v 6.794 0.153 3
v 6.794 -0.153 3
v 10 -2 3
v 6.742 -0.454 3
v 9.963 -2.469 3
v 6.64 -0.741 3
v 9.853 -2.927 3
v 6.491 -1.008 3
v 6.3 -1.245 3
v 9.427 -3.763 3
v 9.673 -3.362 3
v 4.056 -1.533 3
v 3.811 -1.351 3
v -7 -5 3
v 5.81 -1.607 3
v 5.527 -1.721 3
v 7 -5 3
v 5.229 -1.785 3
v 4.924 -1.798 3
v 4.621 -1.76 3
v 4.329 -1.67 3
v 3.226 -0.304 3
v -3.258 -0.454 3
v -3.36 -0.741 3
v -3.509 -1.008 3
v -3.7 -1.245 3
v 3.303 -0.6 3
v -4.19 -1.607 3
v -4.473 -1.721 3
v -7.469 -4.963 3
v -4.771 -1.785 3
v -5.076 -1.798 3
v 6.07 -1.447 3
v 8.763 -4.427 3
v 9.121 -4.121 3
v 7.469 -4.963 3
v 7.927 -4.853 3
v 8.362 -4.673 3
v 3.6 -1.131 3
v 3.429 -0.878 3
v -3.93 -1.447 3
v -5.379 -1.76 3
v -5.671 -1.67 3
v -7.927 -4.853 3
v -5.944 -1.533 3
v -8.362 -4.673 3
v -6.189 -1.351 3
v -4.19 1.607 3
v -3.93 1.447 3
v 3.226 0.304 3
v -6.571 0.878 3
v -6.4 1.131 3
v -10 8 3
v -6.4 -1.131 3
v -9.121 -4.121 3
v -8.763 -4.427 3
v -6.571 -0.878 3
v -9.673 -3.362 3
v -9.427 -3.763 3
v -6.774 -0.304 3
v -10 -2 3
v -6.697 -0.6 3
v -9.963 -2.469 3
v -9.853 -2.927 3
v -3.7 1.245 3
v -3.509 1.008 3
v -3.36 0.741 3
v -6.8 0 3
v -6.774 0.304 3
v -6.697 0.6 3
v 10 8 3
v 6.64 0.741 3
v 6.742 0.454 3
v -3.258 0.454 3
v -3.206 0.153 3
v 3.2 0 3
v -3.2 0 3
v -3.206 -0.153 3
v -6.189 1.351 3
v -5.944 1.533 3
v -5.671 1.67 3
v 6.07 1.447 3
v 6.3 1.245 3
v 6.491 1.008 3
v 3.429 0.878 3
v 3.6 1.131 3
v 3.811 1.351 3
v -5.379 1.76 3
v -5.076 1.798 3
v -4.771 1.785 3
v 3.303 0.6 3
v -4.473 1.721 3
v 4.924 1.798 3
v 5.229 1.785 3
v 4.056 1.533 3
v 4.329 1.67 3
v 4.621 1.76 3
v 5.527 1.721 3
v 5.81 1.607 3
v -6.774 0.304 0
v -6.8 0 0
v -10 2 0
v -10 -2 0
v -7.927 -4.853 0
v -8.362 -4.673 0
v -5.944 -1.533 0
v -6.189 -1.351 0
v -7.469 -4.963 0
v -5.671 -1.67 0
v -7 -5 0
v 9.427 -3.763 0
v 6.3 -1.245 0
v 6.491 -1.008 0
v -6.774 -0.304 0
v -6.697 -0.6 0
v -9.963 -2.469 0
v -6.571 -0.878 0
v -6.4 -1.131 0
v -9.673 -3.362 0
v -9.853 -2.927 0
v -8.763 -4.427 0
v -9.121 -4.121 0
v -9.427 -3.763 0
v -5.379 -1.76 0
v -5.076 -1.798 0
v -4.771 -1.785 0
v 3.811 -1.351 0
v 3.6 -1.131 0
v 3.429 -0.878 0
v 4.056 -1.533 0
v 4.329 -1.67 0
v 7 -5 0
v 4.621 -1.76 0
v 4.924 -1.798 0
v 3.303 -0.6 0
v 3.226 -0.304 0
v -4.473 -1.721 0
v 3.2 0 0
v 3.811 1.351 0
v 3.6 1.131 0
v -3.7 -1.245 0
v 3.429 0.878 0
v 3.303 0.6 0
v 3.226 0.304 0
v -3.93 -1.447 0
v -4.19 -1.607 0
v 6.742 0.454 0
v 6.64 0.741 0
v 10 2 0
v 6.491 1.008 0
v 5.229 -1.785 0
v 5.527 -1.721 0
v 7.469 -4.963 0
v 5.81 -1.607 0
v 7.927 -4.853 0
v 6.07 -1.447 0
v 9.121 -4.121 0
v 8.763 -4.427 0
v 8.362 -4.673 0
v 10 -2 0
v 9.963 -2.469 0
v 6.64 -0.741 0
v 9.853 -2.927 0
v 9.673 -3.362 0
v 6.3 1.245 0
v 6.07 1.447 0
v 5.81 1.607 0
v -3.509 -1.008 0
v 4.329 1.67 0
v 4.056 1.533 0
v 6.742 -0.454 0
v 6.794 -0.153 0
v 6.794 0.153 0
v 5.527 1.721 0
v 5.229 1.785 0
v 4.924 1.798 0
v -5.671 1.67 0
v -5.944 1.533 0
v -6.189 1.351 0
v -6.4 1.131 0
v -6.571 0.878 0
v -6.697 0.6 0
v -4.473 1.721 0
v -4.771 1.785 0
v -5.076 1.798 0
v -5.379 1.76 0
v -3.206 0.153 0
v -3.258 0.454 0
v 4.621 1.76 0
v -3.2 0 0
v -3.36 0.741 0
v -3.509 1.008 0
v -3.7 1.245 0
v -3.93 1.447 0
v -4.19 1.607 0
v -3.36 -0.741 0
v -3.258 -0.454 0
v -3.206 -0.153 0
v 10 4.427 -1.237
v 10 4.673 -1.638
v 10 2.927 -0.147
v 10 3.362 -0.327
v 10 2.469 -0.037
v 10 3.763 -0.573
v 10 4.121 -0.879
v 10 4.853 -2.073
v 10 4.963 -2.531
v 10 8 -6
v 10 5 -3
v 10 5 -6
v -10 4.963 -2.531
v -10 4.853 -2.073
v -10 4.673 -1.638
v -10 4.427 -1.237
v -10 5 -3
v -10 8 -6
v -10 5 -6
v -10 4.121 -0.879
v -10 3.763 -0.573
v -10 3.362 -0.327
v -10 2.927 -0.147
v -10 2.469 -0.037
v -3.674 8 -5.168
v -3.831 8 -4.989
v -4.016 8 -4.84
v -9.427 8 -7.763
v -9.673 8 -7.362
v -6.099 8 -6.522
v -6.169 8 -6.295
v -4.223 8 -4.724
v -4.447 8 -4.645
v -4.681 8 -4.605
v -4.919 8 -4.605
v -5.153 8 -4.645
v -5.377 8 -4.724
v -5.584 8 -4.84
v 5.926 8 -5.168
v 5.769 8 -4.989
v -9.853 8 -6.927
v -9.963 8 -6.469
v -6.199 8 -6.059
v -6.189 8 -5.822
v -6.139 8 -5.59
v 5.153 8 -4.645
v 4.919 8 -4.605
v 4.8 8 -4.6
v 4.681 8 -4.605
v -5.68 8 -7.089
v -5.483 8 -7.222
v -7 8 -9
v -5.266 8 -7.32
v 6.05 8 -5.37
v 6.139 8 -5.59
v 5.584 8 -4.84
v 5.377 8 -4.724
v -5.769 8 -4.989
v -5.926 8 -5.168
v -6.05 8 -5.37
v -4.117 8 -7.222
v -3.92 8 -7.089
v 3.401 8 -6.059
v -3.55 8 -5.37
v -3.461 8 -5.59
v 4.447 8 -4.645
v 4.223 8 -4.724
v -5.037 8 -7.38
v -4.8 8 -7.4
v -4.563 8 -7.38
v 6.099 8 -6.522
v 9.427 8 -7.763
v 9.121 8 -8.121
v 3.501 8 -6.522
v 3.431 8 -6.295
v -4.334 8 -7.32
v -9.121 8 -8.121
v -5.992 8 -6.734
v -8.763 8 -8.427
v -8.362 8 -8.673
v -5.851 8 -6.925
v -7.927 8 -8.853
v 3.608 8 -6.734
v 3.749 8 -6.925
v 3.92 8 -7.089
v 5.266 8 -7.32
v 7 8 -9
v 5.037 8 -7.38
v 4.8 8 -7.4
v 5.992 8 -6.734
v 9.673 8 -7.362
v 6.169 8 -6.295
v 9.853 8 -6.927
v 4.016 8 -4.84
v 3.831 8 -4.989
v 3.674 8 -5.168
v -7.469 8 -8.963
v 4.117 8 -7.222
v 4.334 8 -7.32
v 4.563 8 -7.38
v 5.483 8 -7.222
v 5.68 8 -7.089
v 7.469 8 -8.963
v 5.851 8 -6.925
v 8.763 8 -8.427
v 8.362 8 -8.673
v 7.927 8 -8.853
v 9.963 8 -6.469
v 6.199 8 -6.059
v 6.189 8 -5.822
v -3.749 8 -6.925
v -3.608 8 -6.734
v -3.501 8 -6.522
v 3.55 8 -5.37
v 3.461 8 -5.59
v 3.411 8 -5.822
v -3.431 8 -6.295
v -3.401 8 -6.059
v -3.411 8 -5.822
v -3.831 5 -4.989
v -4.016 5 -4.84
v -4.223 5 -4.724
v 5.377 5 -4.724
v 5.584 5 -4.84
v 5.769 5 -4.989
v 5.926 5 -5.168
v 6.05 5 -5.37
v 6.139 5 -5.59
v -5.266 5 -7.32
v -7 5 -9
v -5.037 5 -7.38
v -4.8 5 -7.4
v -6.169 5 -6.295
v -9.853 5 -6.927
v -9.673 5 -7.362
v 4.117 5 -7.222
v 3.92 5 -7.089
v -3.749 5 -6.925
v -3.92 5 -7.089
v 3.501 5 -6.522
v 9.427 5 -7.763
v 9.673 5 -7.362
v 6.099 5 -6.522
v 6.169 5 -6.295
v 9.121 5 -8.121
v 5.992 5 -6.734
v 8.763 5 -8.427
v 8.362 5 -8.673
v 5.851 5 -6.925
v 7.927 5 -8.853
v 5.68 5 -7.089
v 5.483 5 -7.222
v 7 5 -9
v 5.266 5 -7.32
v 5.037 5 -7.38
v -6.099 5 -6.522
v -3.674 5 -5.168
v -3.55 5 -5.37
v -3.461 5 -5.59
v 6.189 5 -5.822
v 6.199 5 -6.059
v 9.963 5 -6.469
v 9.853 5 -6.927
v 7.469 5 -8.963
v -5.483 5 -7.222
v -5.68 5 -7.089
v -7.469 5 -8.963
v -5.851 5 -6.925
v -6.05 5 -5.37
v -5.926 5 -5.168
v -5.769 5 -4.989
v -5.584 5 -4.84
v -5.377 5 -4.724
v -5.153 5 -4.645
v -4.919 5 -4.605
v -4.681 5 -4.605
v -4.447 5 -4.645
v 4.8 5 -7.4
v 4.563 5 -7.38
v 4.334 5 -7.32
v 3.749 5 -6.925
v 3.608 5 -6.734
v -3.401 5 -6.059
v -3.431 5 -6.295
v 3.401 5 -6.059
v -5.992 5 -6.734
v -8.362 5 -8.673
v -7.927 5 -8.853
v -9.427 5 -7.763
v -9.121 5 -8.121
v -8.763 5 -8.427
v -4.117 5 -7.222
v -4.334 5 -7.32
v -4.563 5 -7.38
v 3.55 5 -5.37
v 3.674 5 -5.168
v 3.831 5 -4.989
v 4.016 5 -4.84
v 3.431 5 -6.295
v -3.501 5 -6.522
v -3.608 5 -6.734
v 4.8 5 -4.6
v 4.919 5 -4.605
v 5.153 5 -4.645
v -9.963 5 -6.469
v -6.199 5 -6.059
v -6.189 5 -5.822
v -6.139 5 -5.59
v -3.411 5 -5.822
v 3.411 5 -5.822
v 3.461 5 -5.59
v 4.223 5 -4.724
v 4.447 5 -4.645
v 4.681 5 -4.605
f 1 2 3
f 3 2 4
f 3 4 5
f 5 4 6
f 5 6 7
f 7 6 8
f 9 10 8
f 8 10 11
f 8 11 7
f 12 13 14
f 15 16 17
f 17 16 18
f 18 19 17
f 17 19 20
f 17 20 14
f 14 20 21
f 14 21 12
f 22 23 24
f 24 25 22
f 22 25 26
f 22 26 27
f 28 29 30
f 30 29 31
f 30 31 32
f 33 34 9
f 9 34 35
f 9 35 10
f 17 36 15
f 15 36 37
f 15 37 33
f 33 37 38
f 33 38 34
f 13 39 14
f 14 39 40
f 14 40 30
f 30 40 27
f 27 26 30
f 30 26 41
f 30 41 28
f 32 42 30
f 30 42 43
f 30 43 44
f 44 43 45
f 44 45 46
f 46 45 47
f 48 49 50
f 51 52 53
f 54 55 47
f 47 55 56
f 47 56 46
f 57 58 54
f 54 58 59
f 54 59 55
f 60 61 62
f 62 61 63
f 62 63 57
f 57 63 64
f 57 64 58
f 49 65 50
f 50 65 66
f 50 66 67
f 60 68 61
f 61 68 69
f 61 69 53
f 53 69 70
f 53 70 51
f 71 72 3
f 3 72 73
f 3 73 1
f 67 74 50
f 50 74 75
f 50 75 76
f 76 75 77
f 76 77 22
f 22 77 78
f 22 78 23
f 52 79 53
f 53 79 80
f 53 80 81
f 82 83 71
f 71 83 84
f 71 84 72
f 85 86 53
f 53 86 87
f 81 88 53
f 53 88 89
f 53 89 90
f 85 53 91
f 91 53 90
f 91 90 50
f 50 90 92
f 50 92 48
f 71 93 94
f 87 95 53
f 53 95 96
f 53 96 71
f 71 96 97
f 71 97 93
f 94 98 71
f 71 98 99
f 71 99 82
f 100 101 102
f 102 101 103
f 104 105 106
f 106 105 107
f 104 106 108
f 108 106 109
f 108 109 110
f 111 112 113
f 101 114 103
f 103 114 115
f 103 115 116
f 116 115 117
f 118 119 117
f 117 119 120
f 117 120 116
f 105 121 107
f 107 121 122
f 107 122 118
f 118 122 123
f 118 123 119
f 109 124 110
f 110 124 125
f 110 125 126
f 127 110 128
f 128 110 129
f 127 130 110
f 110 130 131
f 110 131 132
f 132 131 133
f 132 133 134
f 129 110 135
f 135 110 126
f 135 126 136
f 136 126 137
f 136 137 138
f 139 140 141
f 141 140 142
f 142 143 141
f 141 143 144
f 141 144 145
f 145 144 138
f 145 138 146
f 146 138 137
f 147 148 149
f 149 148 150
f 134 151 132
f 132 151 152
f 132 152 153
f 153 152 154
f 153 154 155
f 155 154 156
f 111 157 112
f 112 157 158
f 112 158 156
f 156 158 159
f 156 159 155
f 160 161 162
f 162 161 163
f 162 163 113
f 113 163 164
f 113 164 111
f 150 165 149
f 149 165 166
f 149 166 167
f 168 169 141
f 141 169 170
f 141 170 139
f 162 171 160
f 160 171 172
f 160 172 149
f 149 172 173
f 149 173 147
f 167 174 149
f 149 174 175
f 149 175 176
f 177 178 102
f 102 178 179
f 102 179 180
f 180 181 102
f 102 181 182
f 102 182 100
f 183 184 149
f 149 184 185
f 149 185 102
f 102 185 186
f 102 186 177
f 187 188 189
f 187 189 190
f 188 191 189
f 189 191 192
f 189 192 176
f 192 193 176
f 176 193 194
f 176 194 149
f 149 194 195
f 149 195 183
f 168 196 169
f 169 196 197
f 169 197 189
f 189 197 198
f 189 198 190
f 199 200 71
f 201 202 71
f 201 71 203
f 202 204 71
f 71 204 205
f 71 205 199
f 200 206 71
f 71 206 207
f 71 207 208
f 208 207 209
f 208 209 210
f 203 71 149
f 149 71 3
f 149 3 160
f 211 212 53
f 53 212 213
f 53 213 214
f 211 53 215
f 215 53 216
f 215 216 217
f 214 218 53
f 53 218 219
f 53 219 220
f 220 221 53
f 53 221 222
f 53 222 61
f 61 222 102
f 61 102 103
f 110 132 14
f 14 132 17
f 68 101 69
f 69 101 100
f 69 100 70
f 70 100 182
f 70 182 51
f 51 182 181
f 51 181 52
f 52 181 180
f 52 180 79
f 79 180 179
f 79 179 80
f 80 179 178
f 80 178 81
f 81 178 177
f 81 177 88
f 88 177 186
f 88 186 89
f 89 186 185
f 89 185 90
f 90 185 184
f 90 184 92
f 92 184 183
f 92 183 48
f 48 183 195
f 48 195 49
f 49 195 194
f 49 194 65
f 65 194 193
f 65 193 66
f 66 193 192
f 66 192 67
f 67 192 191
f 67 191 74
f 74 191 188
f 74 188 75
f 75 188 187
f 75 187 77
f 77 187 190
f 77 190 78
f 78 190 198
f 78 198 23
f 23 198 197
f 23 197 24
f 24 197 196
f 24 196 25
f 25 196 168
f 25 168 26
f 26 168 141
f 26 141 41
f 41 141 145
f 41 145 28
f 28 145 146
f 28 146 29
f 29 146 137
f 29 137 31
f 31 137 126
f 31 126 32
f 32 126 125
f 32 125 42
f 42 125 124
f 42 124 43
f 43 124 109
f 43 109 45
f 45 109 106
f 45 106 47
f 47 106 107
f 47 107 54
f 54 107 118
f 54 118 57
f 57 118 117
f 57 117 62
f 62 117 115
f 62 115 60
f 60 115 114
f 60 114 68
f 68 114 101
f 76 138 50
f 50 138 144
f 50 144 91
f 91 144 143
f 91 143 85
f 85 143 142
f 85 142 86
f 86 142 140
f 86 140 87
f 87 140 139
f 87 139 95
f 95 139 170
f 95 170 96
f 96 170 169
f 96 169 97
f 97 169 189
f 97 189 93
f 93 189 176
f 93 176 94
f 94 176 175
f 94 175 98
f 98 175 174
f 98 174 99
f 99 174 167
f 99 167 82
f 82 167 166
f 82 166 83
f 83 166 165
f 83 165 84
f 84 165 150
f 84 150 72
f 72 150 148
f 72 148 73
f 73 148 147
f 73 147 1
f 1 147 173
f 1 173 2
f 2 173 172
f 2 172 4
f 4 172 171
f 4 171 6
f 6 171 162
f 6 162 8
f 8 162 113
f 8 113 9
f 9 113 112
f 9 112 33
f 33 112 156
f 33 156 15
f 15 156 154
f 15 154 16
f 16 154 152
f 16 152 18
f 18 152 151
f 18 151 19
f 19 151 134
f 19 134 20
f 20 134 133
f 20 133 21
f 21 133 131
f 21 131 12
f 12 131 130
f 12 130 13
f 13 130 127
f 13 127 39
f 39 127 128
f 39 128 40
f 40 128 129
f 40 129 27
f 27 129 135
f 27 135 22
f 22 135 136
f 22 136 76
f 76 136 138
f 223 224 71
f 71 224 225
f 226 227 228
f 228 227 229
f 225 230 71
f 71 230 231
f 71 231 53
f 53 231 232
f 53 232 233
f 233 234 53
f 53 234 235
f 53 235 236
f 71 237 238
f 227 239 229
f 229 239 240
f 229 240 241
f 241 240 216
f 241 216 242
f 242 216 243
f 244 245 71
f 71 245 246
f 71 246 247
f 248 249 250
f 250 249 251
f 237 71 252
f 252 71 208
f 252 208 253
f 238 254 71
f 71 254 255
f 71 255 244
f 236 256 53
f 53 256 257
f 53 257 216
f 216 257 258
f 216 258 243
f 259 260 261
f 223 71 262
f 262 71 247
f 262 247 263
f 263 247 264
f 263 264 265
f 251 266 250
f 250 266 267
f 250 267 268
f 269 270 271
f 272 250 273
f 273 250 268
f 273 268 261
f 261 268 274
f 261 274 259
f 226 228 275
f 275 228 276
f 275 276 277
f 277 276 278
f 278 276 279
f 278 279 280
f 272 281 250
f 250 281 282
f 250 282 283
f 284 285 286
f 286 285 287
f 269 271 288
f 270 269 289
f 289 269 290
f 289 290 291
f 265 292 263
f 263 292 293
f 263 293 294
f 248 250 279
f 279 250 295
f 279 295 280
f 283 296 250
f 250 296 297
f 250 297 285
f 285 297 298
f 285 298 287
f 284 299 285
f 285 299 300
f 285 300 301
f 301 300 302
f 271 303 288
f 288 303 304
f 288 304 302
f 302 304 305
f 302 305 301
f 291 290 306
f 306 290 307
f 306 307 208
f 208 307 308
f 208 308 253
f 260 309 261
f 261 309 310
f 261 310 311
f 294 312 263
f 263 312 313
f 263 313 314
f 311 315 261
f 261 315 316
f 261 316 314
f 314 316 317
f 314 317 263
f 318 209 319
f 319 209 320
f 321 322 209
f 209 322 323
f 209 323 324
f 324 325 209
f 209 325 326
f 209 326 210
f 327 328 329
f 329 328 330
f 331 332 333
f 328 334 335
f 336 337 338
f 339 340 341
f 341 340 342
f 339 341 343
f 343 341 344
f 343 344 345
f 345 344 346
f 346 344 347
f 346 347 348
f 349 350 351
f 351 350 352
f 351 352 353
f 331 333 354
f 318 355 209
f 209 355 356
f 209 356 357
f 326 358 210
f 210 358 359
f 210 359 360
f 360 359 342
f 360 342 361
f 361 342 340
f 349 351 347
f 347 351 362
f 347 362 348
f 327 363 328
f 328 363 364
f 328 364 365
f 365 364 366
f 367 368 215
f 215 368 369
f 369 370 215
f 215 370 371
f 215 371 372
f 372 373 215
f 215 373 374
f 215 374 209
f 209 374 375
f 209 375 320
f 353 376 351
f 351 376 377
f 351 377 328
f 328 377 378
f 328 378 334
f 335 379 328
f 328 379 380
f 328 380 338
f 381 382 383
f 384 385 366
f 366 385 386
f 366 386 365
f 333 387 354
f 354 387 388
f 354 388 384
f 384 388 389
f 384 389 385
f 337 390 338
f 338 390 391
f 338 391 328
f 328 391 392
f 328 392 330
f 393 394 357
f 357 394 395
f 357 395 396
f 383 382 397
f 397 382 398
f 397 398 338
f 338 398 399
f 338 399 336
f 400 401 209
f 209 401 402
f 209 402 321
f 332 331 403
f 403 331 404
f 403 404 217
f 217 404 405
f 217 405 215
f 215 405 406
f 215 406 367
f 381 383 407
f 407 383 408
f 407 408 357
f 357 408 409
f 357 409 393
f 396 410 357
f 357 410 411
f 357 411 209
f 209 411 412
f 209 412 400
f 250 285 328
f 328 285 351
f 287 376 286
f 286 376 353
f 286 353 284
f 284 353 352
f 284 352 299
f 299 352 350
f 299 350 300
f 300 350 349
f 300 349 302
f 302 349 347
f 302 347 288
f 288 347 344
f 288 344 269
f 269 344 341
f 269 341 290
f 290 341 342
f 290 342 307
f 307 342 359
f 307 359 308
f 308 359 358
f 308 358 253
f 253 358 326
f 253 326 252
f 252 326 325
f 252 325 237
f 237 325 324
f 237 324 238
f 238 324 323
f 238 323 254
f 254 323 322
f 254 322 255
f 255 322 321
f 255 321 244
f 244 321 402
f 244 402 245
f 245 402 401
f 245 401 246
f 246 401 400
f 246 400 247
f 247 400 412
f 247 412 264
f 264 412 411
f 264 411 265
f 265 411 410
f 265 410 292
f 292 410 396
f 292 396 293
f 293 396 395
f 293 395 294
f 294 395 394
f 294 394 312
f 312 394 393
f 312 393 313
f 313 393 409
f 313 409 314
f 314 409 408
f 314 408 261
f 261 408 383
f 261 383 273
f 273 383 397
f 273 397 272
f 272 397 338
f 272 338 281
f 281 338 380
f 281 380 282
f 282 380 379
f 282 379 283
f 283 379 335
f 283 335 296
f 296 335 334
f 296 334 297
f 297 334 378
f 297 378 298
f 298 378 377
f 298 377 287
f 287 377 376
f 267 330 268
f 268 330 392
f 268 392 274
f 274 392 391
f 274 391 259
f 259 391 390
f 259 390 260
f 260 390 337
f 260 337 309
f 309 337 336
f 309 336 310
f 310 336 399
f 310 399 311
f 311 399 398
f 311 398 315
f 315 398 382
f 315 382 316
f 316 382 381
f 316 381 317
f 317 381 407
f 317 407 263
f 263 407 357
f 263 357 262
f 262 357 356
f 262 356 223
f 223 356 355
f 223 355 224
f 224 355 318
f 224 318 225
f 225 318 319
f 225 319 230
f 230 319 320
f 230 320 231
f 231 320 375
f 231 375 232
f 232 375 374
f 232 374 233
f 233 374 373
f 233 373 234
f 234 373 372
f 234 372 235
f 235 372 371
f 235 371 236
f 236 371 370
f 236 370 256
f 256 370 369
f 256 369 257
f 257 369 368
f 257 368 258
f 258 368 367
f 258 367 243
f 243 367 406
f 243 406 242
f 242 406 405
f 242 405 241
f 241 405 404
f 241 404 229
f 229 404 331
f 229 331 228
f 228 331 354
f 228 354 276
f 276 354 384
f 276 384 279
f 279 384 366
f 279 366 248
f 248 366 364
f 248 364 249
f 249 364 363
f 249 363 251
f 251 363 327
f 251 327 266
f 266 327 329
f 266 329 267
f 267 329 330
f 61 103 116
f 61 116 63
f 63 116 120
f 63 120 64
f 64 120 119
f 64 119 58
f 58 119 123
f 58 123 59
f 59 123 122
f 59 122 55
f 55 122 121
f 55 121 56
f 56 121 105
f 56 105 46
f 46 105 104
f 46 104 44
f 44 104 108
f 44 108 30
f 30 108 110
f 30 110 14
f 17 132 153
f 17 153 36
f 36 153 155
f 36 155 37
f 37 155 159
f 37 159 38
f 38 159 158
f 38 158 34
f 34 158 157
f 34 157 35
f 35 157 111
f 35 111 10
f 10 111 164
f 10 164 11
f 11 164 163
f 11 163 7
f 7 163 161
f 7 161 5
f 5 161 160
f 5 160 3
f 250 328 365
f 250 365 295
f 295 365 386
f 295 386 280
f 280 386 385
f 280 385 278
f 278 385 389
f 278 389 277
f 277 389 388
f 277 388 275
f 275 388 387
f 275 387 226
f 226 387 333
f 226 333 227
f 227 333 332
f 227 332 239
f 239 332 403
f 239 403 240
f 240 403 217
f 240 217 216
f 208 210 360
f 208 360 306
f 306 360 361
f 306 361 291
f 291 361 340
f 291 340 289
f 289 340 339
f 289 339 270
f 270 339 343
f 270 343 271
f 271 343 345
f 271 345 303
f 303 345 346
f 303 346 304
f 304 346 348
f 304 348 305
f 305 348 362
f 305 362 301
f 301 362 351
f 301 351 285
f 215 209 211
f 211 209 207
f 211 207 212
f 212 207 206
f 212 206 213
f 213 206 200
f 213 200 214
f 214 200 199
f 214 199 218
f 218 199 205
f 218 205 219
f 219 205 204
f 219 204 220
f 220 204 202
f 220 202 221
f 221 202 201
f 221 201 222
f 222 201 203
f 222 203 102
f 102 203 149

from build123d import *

# Parameters (mm, degrees)
SKETCH1_W           = 20
SKETCH1_H           = 10
SKETCH1_R           = 1.8
BOSS_EXTRUDE1_DEPTH = 3
SKETCH2_W           = 20
SKETCH2_H           = 12
SKETCH2_R           = 1.4
BOSS_EXTRUDE2_DEPTH = 3
FILLET1_R           = 3


with BuildPart() as part:
    # Sketch1 → Boss-Extrude1 (new body)
    with BuildSketch(Plane.XY):
        Rectangle(SKETCH1_W, SKETCH1_H)
        with Locations((-5, 0)):
            Circle(SKETCH1_R, mode=Mode.SUBTRACT)
        with Locations(Location((5, 0, 0), (0, 0, 180))):
            Circle(SKETCH1_R, mode=Mode.SUBTRACT)
    extrude(amount=BOSS_EXTRUDE1_DEPTH)

    # Sketch2 → Boss-Extrude2 (add)
    with BuildSketch(Plane(origin=(0, 5, 0), x_dir=(1, 0, 0), z_dir=(0, 1, 0))):
        with Locations((0, 3)):
            Rectangle(SKETCH2_W, SKETCH2_H)
        with Locations(Location((4.8, 6, 0), (0, 0, 270))):
            Circle(SKETCH2_R, mode=Mode.SUBTRACT)
        with Locations(Location((-4.8, 6, 0), (0, 0, 90))):
            Circle(SKETCH2_R, mode=Mode.SUBTRACT)
    extrude(amount=BOSS_EXTRUDE2_DEPTH)

    # Fillet1
    fillet1_edges = [part.edges().sort_by_distance(p)[0] for p in [
        (-10, 6.5, -9),
        (10, 6.5, -9),
        (0, 5, 0),
        (10, -5, 1.5),
        (-10, -5, 1.5),
    ]]
    fillet(fillet1_edges, radius=FILLET1_R)


solid = part.part
